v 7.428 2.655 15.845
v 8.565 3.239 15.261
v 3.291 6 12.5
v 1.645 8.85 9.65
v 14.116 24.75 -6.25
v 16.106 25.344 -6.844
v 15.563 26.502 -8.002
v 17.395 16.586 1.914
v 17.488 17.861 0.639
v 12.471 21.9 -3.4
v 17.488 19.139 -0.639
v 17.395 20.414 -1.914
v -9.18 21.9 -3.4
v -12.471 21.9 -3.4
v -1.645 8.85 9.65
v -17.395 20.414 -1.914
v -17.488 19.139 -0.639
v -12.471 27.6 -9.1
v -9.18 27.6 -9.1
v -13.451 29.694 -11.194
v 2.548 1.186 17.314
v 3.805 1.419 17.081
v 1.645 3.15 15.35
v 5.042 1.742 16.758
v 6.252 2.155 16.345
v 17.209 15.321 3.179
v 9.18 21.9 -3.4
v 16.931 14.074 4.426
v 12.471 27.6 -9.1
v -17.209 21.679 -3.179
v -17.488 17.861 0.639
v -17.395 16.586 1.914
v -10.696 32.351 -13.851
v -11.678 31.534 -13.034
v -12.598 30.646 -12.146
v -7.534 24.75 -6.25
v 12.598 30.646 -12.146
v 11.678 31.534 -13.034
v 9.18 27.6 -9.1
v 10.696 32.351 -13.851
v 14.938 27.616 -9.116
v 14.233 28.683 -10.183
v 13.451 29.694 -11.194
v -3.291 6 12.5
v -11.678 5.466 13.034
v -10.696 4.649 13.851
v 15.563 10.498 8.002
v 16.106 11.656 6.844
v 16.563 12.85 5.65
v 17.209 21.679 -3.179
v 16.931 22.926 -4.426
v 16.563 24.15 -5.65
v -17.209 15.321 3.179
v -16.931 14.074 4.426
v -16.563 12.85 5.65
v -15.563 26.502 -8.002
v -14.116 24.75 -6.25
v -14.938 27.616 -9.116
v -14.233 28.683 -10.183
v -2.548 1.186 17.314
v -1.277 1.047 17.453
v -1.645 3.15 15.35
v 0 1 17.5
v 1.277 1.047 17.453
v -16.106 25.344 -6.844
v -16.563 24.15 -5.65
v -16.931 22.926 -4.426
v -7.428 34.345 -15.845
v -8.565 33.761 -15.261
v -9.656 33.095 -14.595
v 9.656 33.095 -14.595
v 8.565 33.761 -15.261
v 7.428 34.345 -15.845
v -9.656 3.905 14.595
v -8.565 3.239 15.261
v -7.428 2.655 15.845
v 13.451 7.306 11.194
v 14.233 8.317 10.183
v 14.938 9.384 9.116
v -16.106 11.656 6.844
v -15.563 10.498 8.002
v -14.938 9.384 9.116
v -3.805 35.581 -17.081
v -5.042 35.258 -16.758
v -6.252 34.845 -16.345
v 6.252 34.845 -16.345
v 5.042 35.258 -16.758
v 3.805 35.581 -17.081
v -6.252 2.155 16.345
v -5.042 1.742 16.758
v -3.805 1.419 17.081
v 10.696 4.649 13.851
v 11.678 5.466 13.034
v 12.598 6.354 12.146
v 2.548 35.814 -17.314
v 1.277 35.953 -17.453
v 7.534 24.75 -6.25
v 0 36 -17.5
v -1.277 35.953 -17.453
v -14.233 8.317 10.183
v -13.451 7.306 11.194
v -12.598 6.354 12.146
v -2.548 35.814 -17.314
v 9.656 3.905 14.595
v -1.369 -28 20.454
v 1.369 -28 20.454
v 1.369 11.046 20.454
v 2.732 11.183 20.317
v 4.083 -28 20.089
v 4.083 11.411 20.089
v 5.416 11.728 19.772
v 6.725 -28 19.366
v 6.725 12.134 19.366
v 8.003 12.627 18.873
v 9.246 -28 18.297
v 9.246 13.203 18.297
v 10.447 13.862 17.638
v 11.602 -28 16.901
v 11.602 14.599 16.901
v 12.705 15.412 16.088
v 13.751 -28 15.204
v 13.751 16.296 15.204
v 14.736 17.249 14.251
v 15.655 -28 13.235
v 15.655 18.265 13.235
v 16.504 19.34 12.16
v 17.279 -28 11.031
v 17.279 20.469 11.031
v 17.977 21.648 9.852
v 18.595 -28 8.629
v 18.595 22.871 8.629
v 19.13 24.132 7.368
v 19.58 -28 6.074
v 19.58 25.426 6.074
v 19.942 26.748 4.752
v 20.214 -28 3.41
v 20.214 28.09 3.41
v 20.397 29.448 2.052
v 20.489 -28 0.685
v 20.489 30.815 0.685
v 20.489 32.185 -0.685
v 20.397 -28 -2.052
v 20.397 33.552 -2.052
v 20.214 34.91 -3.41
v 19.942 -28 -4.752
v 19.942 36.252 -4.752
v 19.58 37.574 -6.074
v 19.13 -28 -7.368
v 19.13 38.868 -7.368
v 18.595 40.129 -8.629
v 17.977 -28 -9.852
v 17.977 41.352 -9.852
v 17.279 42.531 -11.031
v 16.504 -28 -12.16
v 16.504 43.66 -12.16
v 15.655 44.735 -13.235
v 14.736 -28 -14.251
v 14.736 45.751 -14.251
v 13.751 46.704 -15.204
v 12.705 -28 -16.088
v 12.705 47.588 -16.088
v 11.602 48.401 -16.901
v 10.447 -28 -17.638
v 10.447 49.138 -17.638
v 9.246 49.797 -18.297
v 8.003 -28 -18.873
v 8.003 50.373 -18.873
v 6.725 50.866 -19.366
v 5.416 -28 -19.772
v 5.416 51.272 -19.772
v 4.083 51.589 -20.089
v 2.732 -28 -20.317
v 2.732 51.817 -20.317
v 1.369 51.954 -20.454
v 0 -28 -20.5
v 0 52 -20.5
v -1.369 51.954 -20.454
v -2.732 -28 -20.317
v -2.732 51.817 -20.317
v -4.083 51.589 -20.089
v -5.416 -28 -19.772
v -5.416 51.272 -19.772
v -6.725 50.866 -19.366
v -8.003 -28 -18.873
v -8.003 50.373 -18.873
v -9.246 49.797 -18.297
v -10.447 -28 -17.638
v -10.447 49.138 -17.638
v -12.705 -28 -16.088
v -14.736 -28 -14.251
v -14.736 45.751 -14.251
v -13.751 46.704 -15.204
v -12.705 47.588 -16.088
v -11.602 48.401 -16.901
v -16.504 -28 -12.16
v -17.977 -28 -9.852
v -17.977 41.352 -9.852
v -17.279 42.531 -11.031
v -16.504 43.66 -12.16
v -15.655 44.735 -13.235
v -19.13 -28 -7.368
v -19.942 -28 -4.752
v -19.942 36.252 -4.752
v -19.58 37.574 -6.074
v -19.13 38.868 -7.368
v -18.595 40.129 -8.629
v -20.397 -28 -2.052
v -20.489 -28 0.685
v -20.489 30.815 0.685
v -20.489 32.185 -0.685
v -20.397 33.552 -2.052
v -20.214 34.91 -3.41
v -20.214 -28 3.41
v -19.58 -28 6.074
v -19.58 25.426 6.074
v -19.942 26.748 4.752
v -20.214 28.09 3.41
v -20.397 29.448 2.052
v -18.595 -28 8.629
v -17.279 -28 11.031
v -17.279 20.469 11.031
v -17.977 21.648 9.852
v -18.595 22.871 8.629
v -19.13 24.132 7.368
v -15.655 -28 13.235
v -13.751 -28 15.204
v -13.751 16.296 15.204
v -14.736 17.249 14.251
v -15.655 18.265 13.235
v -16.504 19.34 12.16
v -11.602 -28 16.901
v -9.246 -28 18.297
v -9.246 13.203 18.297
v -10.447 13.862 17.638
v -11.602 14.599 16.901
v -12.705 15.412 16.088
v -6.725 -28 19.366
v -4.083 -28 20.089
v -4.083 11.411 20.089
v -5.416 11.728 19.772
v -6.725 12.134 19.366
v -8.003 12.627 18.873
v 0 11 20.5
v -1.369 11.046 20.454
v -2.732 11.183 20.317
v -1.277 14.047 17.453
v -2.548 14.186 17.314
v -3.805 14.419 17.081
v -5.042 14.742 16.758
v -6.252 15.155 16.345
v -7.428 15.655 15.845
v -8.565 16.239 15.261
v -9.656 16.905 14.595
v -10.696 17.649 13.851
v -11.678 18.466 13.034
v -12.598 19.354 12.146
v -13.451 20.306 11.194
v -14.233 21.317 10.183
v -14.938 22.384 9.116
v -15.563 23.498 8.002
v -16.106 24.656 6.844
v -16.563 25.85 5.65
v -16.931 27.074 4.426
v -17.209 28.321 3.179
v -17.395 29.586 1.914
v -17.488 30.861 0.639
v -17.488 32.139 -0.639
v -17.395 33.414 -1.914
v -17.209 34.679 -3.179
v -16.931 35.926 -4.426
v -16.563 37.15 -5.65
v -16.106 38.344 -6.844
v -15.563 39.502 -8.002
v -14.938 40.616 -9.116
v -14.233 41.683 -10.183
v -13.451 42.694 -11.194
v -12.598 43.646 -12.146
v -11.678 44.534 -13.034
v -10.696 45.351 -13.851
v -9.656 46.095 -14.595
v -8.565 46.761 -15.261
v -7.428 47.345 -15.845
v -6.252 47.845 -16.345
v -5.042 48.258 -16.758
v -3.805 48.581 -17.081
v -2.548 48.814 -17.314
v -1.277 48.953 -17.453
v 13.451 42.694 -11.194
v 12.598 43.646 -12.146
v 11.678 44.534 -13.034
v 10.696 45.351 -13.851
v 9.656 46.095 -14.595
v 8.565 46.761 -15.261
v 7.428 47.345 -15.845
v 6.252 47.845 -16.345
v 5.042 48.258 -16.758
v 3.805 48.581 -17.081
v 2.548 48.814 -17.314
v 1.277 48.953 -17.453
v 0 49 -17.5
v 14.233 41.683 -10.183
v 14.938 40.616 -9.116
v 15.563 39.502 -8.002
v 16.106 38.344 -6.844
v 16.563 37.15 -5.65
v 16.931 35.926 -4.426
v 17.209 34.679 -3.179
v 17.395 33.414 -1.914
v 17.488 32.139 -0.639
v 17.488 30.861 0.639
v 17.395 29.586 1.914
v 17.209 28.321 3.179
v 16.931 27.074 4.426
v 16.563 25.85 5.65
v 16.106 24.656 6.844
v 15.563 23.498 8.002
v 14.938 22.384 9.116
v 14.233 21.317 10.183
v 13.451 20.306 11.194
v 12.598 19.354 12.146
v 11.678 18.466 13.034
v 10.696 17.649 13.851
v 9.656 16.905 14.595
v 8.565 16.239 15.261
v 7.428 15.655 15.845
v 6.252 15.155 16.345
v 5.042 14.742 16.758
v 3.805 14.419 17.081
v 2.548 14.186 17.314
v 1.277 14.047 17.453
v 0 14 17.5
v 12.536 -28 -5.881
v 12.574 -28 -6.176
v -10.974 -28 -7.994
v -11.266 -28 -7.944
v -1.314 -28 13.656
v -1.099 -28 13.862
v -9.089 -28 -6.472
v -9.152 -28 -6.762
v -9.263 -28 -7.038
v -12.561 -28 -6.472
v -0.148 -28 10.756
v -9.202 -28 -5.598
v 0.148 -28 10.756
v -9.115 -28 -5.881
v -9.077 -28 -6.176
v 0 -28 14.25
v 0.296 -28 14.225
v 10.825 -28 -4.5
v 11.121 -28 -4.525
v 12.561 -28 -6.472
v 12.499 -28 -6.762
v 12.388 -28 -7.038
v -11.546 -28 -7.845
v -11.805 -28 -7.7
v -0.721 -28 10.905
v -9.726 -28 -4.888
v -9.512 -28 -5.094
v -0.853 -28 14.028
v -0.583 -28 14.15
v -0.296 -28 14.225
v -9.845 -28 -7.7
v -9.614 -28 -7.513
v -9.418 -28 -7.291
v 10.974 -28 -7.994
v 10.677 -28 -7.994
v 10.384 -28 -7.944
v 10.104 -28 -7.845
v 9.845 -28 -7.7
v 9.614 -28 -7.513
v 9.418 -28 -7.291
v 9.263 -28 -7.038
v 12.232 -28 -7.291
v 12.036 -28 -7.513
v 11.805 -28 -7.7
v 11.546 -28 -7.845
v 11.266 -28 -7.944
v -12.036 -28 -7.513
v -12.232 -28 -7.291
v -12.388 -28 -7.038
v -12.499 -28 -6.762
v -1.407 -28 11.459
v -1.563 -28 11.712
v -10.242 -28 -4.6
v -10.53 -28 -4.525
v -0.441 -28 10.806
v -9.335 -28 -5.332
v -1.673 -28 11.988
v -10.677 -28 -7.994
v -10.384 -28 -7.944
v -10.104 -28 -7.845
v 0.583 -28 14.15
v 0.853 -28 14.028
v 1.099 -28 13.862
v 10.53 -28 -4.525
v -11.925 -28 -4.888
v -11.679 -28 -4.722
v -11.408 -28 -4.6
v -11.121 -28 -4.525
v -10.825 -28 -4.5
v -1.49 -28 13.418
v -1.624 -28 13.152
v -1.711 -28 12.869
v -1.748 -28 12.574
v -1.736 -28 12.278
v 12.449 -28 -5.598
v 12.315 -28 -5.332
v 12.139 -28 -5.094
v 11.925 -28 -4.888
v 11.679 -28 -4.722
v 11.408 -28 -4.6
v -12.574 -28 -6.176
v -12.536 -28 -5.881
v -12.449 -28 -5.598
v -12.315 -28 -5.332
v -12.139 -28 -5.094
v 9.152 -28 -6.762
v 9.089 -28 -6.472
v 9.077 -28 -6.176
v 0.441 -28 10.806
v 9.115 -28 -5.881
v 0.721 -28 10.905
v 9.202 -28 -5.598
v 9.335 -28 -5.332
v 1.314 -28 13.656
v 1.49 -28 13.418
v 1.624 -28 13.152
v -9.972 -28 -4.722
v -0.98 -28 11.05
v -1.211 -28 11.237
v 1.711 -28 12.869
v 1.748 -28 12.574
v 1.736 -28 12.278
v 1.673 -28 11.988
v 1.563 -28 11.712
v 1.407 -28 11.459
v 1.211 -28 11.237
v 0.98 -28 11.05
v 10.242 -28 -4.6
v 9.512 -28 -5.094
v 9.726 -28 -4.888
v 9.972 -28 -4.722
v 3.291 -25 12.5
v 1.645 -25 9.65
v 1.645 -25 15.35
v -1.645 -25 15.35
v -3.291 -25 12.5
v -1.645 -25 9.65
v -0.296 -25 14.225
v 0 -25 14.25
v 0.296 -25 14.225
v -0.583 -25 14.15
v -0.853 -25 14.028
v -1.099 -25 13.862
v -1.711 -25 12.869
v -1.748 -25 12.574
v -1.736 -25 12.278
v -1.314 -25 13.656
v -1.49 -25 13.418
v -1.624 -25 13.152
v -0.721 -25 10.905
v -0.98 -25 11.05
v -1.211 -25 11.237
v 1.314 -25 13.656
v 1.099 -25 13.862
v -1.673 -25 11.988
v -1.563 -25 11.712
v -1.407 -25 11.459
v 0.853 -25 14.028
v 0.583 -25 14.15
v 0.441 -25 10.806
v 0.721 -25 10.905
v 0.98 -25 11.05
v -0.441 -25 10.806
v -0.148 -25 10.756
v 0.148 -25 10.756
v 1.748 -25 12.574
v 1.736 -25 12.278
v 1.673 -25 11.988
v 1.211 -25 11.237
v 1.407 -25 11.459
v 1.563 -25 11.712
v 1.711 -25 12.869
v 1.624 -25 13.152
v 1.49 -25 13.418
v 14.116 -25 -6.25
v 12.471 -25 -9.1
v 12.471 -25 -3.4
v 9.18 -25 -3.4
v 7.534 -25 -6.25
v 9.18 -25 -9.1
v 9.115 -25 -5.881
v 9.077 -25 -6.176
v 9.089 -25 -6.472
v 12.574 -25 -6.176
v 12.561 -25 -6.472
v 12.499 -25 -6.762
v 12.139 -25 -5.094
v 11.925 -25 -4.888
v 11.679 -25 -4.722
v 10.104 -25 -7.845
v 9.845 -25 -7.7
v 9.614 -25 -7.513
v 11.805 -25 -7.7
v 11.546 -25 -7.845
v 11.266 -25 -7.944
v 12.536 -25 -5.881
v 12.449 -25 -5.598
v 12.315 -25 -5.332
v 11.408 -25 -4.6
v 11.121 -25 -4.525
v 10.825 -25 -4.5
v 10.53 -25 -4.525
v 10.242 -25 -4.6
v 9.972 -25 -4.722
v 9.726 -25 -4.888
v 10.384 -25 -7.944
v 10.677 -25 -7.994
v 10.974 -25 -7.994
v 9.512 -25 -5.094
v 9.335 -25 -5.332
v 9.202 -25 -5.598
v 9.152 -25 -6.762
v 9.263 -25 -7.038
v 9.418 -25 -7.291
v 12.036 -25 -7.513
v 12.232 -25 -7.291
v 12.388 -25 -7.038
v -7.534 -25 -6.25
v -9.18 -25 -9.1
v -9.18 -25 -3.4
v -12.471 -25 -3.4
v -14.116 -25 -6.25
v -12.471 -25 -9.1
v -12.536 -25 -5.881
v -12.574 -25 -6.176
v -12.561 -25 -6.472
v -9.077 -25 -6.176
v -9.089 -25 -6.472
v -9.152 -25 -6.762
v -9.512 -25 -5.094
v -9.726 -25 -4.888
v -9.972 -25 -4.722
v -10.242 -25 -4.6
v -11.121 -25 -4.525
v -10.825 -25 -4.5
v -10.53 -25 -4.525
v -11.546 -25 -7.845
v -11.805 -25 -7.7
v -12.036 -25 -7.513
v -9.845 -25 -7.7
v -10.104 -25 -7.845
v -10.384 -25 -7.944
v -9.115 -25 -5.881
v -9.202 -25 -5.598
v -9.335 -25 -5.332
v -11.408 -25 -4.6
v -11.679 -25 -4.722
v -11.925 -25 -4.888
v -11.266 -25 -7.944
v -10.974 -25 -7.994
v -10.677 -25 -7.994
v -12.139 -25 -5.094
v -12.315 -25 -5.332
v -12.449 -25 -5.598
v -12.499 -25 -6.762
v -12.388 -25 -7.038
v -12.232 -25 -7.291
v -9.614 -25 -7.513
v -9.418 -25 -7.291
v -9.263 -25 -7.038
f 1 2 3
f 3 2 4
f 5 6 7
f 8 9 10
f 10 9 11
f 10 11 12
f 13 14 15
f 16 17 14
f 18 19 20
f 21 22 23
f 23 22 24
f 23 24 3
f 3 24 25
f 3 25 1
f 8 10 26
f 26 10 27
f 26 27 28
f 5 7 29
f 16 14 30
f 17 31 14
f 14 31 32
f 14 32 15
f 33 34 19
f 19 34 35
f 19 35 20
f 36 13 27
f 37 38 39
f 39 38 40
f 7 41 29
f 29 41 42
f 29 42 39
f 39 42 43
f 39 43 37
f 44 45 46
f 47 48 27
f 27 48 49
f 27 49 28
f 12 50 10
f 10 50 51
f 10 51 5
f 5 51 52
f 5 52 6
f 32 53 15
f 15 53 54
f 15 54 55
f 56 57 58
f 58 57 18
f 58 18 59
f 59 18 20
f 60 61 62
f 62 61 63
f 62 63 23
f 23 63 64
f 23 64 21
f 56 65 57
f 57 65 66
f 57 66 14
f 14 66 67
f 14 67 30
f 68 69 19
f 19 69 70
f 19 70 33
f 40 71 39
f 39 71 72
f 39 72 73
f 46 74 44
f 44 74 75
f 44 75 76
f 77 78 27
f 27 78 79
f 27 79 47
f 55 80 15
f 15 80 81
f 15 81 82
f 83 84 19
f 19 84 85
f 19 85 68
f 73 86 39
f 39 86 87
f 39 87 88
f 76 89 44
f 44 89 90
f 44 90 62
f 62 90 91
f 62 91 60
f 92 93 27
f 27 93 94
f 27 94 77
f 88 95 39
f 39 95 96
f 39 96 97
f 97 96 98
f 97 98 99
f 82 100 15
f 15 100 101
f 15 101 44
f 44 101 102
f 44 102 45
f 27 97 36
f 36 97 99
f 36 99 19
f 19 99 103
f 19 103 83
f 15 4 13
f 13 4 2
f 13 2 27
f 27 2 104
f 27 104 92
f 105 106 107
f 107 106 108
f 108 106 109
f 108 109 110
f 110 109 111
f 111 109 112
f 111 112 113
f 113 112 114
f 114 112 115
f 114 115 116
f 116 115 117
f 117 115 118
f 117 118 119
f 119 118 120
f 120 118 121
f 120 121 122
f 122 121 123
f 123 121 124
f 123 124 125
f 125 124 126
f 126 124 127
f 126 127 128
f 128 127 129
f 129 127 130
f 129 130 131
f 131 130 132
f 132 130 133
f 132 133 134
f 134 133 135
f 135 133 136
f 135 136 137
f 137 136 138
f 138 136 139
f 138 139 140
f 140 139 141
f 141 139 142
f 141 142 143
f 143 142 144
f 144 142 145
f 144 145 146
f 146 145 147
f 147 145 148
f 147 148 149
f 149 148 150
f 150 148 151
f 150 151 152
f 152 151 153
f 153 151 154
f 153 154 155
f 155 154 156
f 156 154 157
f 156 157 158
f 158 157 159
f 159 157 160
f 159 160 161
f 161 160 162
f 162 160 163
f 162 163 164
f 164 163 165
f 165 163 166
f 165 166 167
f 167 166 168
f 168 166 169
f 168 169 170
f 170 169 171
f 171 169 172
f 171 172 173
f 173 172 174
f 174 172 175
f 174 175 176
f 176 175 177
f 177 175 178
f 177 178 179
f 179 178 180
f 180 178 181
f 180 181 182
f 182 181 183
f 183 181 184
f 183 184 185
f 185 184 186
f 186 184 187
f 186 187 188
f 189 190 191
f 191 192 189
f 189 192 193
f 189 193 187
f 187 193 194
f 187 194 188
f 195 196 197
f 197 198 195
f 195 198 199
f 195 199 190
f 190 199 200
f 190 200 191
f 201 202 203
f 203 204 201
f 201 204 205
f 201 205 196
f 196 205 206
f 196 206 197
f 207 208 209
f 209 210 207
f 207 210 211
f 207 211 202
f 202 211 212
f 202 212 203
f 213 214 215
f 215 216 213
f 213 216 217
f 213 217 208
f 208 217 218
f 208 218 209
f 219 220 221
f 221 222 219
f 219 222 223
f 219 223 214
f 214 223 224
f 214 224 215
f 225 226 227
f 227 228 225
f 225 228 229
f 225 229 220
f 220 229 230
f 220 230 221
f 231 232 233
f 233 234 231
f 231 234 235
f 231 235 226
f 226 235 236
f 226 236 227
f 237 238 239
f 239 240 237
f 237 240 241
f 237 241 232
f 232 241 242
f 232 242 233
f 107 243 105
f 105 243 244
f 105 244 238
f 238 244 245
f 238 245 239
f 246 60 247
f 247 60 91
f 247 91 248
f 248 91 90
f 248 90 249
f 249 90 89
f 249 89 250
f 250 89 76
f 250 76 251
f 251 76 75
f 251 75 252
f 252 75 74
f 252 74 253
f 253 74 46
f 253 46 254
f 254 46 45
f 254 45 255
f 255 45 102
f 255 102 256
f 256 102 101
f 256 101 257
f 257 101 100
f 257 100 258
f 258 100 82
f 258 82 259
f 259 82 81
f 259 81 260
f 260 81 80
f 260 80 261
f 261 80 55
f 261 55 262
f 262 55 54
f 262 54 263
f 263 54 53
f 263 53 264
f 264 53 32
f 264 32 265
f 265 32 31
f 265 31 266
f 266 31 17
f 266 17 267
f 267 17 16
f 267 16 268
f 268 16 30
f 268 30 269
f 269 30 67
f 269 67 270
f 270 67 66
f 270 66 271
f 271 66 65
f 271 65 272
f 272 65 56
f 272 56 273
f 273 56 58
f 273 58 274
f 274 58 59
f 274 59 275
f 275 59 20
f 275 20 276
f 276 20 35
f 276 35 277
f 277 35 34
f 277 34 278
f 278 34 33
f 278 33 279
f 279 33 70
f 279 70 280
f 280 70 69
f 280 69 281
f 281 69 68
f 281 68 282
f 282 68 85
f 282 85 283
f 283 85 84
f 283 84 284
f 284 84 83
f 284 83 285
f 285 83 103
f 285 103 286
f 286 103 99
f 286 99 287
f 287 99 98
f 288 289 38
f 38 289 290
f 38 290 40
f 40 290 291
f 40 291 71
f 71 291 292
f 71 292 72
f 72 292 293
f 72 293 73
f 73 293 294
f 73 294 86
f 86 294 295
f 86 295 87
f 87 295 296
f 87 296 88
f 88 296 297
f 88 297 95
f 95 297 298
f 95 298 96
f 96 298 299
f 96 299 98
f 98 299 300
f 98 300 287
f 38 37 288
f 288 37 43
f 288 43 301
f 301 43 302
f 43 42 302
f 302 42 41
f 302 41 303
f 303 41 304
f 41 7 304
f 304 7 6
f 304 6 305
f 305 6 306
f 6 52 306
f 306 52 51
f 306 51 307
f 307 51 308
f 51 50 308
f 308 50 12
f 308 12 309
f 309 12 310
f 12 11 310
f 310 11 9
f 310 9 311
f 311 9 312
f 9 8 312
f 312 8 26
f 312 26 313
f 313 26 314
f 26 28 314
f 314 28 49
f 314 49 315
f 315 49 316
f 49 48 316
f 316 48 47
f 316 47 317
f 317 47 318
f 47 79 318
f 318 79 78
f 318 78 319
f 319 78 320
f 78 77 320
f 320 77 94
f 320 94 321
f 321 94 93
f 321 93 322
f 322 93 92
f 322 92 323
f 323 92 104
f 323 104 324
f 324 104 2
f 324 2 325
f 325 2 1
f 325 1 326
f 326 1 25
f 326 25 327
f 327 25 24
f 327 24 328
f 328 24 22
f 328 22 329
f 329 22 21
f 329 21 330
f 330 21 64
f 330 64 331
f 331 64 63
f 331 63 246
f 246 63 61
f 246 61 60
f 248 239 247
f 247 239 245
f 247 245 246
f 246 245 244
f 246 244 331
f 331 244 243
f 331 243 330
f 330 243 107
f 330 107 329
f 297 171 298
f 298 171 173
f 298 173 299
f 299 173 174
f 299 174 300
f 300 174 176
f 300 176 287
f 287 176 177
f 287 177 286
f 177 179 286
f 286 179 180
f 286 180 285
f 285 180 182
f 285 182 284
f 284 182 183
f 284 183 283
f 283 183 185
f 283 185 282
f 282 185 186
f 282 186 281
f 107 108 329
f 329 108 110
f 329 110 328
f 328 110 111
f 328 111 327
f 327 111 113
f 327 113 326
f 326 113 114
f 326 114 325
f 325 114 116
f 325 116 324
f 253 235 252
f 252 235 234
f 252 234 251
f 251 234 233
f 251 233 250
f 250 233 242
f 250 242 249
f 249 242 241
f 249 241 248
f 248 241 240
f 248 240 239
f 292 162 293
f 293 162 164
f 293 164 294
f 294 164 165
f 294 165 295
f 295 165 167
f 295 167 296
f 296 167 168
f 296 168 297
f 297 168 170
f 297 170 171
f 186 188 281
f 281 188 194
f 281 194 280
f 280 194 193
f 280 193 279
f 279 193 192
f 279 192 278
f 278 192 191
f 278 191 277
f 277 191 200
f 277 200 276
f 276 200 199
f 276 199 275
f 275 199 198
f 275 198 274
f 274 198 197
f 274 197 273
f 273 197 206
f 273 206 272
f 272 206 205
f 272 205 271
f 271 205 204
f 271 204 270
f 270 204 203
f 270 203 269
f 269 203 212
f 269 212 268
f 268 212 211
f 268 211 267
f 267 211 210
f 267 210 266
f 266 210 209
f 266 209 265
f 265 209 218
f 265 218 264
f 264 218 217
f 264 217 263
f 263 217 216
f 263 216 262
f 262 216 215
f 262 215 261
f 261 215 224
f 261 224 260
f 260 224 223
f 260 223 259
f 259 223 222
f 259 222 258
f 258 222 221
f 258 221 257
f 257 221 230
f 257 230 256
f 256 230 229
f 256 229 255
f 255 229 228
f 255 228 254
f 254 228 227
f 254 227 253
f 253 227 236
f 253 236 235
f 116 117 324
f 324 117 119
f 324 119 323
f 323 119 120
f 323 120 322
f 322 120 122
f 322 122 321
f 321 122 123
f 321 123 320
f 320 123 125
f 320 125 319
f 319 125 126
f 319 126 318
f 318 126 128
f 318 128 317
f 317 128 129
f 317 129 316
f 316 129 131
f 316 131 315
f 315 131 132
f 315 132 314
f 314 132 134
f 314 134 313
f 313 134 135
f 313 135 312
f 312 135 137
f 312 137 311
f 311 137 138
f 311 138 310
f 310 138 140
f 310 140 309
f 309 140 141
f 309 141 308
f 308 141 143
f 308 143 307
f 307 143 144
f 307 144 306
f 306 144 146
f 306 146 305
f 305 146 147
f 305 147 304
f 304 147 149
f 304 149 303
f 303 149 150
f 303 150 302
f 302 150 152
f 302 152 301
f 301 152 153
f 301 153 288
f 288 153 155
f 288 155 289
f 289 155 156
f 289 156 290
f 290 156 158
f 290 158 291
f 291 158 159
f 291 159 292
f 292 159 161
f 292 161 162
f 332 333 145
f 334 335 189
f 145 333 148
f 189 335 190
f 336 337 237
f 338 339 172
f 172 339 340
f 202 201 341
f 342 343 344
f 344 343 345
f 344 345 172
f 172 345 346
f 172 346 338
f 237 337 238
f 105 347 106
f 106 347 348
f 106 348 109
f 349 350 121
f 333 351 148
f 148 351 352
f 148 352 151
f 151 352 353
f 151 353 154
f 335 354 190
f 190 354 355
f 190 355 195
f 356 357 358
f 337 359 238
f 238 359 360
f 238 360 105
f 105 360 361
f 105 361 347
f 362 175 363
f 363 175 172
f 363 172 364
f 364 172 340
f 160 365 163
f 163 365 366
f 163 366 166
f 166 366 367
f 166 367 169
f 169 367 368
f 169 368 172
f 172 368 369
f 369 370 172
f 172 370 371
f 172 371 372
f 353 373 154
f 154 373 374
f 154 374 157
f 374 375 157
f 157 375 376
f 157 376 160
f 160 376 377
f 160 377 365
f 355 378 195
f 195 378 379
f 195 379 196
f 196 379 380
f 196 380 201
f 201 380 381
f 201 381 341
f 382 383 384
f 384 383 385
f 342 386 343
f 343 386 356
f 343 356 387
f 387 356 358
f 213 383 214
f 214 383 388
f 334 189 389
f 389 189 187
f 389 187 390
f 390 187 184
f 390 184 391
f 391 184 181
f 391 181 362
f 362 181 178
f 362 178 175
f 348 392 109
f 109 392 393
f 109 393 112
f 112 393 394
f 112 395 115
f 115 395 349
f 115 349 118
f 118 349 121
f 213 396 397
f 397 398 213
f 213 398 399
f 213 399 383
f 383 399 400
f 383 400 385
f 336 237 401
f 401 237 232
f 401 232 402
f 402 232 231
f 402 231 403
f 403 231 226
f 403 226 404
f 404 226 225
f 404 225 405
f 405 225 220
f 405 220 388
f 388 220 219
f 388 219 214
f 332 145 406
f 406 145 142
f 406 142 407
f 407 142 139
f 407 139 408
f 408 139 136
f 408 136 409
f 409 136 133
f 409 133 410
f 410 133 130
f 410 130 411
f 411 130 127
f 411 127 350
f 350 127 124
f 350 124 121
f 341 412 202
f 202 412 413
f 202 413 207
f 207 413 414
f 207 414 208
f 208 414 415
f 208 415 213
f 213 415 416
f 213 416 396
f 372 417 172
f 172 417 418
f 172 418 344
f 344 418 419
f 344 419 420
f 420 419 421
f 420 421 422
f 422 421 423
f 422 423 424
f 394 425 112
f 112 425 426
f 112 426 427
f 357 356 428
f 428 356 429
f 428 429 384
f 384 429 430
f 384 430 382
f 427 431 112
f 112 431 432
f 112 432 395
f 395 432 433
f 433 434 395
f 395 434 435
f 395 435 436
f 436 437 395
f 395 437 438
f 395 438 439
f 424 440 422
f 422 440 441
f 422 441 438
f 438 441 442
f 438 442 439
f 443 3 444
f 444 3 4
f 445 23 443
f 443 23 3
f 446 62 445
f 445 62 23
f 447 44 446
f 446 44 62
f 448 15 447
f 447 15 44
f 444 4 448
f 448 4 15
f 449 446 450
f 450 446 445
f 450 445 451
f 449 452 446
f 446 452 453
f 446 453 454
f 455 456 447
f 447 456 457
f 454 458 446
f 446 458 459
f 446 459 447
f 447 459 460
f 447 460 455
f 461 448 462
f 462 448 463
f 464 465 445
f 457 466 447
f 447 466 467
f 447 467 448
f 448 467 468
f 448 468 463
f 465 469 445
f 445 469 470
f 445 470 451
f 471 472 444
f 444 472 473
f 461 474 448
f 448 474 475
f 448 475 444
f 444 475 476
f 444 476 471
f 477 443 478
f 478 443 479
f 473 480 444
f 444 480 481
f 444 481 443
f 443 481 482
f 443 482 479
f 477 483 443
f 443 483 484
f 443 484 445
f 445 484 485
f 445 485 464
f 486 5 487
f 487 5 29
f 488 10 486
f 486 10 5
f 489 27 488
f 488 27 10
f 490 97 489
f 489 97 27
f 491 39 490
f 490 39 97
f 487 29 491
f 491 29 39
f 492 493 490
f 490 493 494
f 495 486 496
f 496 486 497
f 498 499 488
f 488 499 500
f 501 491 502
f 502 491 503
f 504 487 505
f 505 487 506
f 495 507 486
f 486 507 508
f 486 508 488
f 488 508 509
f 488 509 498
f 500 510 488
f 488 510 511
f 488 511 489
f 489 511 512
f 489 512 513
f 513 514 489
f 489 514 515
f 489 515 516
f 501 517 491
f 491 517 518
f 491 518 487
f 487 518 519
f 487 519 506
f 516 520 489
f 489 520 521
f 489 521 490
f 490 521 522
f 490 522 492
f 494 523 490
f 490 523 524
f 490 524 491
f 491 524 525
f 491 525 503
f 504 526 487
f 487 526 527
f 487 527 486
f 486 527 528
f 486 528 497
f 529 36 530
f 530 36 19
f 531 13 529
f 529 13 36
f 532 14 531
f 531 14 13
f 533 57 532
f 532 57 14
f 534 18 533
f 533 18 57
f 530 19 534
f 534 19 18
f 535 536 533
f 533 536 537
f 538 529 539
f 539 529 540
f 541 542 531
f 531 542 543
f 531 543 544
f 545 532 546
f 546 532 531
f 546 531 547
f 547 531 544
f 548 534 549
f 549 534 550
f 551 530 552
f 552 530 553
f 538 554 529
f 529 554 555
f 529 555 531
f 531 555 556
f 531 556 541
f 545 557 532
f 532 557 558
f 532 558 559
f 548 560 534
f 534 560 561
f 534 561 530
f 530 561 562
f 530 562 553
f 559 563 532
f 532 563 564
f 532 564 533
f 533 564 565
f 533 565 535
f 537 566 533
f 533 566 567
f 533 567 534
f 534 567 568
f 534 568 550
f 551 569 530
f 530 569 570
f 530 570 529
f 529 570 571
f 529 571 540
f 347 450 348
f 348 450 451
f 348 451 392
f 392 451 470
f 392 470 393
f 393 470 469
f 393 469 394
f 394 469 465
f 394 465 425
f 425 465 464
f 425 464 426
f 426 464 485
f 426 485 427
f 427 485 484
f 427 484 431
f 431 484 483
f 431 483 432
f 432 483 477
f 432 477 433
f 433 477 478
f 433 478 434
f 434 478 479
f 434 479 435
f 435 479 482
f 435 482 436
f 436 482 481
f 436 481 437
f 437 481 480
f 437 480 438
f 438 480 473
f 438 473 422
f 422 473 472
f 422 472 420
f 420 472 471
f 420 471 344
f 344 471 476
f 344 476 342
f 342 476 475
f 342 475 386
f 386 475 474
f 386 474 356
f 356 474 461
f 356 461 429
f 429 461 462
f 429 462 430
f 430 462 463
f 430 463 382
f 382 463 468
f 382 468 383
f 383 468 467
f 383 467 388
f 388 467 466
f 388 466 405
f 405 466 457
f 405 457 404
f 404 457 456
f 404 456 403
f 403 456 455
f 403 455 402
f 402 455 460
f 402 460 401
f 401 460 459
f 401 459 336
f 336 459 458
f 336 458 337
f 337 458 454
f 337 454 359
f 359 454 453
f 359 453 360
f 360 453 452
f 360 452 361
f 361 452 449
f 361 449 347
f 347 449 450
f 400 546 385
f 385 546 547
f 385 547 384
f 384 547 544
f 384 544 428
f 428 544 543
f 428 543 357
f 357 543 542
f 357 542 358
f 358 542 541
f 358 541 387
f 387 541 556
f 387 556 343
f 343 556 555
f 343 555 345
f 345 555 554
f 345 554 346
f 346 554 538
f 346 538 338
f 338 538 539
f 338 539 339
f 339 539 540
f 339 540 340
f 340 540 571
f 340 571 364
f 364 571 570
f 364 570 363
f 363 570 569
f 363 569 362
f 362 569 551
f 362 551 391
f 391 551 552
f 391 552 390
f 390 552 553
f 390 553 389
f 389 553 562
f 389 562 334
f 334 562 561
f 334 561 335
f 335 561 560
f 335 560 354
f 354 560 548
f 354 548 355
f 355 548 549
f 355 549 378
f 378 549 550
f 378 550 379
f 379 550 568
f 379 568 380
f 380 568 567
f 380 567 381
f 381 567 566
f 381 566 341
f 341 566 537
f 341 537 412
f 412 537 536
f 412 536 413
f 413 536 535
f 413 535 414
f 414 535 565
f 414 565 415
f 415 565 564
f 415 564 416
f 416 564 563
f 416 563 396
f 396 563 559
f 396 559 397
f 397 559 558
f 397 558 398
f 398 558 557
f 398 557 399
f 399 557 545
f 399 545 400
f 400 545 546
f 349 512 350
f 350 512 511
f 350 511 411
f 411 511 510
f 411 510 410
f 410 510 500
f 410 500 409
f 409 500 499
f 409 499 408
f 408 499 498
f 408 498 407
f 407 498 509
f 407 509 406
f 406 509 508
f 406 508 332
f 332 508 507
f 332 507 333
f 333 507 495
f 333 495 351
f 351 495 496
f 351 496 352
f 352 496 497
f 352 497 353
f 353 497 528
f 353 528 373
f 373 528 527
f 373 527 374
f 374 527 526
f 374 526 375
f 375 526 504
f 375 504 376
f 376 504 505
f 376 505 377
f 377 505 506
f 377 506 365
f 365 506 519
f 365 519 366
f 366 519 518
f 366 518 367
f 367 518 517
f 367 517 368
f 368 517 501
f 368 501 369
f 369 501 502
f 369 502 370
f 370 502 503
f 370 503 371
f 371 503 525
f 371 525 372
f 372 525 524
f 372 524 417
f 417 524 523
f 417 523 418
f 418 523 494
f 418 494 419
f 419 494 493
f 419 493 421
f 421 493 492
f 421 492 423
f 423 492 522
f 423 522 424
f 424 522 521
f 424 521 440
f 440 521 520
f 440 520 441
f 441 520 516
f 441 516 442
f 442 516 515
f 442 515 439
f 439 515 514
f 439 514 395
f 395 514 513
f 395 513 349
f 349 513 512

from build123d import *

# Parameters (mm, degrees)
SKETCH_1_R                  = 20.5
SKETCH_1_R_2                = 17.5
EXTRUDE_1_DEPTH             = 59
CUT_EXTRUDE_1_DEPTH         = 66.738116797
CUT_EXTRUDE_1_DEPTH_BACK    = 66.738116797
EXTRUDE_4_REACH             = 61.536
EXTRUDE_4_DIRECTION_2_REACH = 61.536
EXTRUDE_START               = 28
SKETCH_5_R                  = 20.5
EXTRUDE_5_DEPTH             = 28
CUT_EXTRUDE_6_DEPTH         = 84
SKETCH_15_R                 = 1.75
CUT_EXTRUDE_7_DEPTH         = 83.276971262


with BuildPart() as part:
    # Эскиз1 → Бобышка-Вытянуть1 (new body)
    with BuildSketch(Plane(origin=(0, 0, 0), x_dir=(1, 0, 0), z_dir=(0, 1, 0))):
        with Locations(Location((0, 0, 0), (0, 0, 270))):
            Circle(SKETCH_1_R)
        with Locations(Location((0, 0, 0), (0, 0, 270))):
            Circle(SKETCH_1_R_2, mode=Mode.SUBTRACT)
    extrude(amount=EXTRUDE_1_DEPTH)

    # Эскиз2 → Вырез-Вытянуть1 (cut, two sides: drawn at the far end of the back side and taken through both)
    with BuildSketch(Plane(origin=(0, 0, 0), x_dir=(0, 0, -1), z_dir=(1, 0, 0)).offset(-CUT_EXTRUDE_1_DEPTH_BACK)):
        Polygon((20.5, 59), (-20.5, 59), (-20.5, 11), (20.5, 52), align=None)
    extrude(amount=CUT_EXTRUDE_1_DEPTH + CUT_EXTRUDE_1_DEPTH_BACK, mode=Mode.SUBTRACT)

    # Эскиз3 → Бобышка-Вытянуть4 (add, up to next)
    with BuildSketch(Plane(origin=(0, 0, 0), x_dir=(0, 0, -1), z_dir=(1, 0, 0)), mode=Mode.PRIVATE) as extrude_4_sk1:
        Polygon((-17.5, 1), (17.5, 36), (17.5, 1), (17.5, 0), (-17.5, 0), align=None)
    extrude_4_tool1 = extrude(extrude_4_sk1.sketch, amount=EXTRUDE_4_REACH, mode=Mode.PRIVATE) - part.part
    add(extrude_4_tool1.solids().sort_by_distance((0, 12.009009, -5.518018))[0])

    # Эскиз3 → Бобышка-Вытянуть4 direction 2 (add, up to next)
    with BuildSketch(Plane(origin=(0, 0, 0), x_dir=(0, 0, -1), z_dir=(1, 0, 0)), mode=Mode.PRIVATE) as extrude_4_direction_2_sk1:
        Polygon((-17.5, 1), (17.5, 36), (17.5, 1), (17.5, 0), (-17.5, 0), align=None)
    extrude_4_direction_2_tool1 = extrude(extrude_4_direction_2_sk1.sketch, amount=-EXTRUDE_4_DIRECTION_2_REACH, mode=Mode.PRIVATE) - part.part
    add(extrude_4_direction_2_tool1.solids().sort_by_distance((0, 12.009009, -5.518018))[0])

    # Эскиз5 → Бобышка-Вытянуть5 (add)
    with BuildSketch(Plane.XZ.offset(EXTRUDE_START)):
        with Locations(Location((0, 0, 0), (0, 0, 270))):
            Circle(SKETCH_5_R)
    extrude(amount=-EXTRUDE_5_DEPTH)

    # Эскиз13 → Вырез-Вытянуть6 (cut)
    with BuildSketch(Plane(origin=(0, 59, 0), x_dir=(-1, 0, 0), z_dir=(0, -1, 0))):
        Polygon((7.534421013, 6.25), (9.17986928, 3.4), (12.470765814, 3.4), (14.116214082, 6.25), (12.470765814, 9.1), (9.17986928, 9.1), align=None)
        Polygon((-14.116214082, 6.25), (-12.470765814, 3.4), (-9.17986928, 3.4), (-7.534421013, 6.25), (-9.17986928, 9.1), (-12.470765814, 9.1), align=None)
        Polygon((-3.290896534, -12.5), (-1.645448267, -15.35), (1.645448267, -15.35), (3.290896534, -12.5), (1.645448267, -9.65), (-1.645448267, -9.65), align=None)
    extrude(amount=CUT_EXTRUDE_6_DEPTH, mode=Mode.SUBTRACT)

    # Эскиз15 → Вырез-Вытянуть7 (cut, through all)
    with BuildSketch(Plane(origin=(0, -25, 0), x_dir=(1, 0, 0), z_dir=(0, 1, 0))):
        with Locations(Location((10.825317547, 6.25, 0), (0, 0, 270))):
            Circle(SKETCH_15_R)
        with Locations(Location((-10.825317547, 6.25, 0), (0, 0, 270))):
            Circle(SKETCH_15_R)
        with Locations(Location((0, -12.5, 0), (0, 0, 270))):
            Circle(SKETCH_15_R)
    extrude(amount=-CUT_EXTRUDE_7_DEPTH, mode=Mode.SUBTRACT)


solid = part.part
